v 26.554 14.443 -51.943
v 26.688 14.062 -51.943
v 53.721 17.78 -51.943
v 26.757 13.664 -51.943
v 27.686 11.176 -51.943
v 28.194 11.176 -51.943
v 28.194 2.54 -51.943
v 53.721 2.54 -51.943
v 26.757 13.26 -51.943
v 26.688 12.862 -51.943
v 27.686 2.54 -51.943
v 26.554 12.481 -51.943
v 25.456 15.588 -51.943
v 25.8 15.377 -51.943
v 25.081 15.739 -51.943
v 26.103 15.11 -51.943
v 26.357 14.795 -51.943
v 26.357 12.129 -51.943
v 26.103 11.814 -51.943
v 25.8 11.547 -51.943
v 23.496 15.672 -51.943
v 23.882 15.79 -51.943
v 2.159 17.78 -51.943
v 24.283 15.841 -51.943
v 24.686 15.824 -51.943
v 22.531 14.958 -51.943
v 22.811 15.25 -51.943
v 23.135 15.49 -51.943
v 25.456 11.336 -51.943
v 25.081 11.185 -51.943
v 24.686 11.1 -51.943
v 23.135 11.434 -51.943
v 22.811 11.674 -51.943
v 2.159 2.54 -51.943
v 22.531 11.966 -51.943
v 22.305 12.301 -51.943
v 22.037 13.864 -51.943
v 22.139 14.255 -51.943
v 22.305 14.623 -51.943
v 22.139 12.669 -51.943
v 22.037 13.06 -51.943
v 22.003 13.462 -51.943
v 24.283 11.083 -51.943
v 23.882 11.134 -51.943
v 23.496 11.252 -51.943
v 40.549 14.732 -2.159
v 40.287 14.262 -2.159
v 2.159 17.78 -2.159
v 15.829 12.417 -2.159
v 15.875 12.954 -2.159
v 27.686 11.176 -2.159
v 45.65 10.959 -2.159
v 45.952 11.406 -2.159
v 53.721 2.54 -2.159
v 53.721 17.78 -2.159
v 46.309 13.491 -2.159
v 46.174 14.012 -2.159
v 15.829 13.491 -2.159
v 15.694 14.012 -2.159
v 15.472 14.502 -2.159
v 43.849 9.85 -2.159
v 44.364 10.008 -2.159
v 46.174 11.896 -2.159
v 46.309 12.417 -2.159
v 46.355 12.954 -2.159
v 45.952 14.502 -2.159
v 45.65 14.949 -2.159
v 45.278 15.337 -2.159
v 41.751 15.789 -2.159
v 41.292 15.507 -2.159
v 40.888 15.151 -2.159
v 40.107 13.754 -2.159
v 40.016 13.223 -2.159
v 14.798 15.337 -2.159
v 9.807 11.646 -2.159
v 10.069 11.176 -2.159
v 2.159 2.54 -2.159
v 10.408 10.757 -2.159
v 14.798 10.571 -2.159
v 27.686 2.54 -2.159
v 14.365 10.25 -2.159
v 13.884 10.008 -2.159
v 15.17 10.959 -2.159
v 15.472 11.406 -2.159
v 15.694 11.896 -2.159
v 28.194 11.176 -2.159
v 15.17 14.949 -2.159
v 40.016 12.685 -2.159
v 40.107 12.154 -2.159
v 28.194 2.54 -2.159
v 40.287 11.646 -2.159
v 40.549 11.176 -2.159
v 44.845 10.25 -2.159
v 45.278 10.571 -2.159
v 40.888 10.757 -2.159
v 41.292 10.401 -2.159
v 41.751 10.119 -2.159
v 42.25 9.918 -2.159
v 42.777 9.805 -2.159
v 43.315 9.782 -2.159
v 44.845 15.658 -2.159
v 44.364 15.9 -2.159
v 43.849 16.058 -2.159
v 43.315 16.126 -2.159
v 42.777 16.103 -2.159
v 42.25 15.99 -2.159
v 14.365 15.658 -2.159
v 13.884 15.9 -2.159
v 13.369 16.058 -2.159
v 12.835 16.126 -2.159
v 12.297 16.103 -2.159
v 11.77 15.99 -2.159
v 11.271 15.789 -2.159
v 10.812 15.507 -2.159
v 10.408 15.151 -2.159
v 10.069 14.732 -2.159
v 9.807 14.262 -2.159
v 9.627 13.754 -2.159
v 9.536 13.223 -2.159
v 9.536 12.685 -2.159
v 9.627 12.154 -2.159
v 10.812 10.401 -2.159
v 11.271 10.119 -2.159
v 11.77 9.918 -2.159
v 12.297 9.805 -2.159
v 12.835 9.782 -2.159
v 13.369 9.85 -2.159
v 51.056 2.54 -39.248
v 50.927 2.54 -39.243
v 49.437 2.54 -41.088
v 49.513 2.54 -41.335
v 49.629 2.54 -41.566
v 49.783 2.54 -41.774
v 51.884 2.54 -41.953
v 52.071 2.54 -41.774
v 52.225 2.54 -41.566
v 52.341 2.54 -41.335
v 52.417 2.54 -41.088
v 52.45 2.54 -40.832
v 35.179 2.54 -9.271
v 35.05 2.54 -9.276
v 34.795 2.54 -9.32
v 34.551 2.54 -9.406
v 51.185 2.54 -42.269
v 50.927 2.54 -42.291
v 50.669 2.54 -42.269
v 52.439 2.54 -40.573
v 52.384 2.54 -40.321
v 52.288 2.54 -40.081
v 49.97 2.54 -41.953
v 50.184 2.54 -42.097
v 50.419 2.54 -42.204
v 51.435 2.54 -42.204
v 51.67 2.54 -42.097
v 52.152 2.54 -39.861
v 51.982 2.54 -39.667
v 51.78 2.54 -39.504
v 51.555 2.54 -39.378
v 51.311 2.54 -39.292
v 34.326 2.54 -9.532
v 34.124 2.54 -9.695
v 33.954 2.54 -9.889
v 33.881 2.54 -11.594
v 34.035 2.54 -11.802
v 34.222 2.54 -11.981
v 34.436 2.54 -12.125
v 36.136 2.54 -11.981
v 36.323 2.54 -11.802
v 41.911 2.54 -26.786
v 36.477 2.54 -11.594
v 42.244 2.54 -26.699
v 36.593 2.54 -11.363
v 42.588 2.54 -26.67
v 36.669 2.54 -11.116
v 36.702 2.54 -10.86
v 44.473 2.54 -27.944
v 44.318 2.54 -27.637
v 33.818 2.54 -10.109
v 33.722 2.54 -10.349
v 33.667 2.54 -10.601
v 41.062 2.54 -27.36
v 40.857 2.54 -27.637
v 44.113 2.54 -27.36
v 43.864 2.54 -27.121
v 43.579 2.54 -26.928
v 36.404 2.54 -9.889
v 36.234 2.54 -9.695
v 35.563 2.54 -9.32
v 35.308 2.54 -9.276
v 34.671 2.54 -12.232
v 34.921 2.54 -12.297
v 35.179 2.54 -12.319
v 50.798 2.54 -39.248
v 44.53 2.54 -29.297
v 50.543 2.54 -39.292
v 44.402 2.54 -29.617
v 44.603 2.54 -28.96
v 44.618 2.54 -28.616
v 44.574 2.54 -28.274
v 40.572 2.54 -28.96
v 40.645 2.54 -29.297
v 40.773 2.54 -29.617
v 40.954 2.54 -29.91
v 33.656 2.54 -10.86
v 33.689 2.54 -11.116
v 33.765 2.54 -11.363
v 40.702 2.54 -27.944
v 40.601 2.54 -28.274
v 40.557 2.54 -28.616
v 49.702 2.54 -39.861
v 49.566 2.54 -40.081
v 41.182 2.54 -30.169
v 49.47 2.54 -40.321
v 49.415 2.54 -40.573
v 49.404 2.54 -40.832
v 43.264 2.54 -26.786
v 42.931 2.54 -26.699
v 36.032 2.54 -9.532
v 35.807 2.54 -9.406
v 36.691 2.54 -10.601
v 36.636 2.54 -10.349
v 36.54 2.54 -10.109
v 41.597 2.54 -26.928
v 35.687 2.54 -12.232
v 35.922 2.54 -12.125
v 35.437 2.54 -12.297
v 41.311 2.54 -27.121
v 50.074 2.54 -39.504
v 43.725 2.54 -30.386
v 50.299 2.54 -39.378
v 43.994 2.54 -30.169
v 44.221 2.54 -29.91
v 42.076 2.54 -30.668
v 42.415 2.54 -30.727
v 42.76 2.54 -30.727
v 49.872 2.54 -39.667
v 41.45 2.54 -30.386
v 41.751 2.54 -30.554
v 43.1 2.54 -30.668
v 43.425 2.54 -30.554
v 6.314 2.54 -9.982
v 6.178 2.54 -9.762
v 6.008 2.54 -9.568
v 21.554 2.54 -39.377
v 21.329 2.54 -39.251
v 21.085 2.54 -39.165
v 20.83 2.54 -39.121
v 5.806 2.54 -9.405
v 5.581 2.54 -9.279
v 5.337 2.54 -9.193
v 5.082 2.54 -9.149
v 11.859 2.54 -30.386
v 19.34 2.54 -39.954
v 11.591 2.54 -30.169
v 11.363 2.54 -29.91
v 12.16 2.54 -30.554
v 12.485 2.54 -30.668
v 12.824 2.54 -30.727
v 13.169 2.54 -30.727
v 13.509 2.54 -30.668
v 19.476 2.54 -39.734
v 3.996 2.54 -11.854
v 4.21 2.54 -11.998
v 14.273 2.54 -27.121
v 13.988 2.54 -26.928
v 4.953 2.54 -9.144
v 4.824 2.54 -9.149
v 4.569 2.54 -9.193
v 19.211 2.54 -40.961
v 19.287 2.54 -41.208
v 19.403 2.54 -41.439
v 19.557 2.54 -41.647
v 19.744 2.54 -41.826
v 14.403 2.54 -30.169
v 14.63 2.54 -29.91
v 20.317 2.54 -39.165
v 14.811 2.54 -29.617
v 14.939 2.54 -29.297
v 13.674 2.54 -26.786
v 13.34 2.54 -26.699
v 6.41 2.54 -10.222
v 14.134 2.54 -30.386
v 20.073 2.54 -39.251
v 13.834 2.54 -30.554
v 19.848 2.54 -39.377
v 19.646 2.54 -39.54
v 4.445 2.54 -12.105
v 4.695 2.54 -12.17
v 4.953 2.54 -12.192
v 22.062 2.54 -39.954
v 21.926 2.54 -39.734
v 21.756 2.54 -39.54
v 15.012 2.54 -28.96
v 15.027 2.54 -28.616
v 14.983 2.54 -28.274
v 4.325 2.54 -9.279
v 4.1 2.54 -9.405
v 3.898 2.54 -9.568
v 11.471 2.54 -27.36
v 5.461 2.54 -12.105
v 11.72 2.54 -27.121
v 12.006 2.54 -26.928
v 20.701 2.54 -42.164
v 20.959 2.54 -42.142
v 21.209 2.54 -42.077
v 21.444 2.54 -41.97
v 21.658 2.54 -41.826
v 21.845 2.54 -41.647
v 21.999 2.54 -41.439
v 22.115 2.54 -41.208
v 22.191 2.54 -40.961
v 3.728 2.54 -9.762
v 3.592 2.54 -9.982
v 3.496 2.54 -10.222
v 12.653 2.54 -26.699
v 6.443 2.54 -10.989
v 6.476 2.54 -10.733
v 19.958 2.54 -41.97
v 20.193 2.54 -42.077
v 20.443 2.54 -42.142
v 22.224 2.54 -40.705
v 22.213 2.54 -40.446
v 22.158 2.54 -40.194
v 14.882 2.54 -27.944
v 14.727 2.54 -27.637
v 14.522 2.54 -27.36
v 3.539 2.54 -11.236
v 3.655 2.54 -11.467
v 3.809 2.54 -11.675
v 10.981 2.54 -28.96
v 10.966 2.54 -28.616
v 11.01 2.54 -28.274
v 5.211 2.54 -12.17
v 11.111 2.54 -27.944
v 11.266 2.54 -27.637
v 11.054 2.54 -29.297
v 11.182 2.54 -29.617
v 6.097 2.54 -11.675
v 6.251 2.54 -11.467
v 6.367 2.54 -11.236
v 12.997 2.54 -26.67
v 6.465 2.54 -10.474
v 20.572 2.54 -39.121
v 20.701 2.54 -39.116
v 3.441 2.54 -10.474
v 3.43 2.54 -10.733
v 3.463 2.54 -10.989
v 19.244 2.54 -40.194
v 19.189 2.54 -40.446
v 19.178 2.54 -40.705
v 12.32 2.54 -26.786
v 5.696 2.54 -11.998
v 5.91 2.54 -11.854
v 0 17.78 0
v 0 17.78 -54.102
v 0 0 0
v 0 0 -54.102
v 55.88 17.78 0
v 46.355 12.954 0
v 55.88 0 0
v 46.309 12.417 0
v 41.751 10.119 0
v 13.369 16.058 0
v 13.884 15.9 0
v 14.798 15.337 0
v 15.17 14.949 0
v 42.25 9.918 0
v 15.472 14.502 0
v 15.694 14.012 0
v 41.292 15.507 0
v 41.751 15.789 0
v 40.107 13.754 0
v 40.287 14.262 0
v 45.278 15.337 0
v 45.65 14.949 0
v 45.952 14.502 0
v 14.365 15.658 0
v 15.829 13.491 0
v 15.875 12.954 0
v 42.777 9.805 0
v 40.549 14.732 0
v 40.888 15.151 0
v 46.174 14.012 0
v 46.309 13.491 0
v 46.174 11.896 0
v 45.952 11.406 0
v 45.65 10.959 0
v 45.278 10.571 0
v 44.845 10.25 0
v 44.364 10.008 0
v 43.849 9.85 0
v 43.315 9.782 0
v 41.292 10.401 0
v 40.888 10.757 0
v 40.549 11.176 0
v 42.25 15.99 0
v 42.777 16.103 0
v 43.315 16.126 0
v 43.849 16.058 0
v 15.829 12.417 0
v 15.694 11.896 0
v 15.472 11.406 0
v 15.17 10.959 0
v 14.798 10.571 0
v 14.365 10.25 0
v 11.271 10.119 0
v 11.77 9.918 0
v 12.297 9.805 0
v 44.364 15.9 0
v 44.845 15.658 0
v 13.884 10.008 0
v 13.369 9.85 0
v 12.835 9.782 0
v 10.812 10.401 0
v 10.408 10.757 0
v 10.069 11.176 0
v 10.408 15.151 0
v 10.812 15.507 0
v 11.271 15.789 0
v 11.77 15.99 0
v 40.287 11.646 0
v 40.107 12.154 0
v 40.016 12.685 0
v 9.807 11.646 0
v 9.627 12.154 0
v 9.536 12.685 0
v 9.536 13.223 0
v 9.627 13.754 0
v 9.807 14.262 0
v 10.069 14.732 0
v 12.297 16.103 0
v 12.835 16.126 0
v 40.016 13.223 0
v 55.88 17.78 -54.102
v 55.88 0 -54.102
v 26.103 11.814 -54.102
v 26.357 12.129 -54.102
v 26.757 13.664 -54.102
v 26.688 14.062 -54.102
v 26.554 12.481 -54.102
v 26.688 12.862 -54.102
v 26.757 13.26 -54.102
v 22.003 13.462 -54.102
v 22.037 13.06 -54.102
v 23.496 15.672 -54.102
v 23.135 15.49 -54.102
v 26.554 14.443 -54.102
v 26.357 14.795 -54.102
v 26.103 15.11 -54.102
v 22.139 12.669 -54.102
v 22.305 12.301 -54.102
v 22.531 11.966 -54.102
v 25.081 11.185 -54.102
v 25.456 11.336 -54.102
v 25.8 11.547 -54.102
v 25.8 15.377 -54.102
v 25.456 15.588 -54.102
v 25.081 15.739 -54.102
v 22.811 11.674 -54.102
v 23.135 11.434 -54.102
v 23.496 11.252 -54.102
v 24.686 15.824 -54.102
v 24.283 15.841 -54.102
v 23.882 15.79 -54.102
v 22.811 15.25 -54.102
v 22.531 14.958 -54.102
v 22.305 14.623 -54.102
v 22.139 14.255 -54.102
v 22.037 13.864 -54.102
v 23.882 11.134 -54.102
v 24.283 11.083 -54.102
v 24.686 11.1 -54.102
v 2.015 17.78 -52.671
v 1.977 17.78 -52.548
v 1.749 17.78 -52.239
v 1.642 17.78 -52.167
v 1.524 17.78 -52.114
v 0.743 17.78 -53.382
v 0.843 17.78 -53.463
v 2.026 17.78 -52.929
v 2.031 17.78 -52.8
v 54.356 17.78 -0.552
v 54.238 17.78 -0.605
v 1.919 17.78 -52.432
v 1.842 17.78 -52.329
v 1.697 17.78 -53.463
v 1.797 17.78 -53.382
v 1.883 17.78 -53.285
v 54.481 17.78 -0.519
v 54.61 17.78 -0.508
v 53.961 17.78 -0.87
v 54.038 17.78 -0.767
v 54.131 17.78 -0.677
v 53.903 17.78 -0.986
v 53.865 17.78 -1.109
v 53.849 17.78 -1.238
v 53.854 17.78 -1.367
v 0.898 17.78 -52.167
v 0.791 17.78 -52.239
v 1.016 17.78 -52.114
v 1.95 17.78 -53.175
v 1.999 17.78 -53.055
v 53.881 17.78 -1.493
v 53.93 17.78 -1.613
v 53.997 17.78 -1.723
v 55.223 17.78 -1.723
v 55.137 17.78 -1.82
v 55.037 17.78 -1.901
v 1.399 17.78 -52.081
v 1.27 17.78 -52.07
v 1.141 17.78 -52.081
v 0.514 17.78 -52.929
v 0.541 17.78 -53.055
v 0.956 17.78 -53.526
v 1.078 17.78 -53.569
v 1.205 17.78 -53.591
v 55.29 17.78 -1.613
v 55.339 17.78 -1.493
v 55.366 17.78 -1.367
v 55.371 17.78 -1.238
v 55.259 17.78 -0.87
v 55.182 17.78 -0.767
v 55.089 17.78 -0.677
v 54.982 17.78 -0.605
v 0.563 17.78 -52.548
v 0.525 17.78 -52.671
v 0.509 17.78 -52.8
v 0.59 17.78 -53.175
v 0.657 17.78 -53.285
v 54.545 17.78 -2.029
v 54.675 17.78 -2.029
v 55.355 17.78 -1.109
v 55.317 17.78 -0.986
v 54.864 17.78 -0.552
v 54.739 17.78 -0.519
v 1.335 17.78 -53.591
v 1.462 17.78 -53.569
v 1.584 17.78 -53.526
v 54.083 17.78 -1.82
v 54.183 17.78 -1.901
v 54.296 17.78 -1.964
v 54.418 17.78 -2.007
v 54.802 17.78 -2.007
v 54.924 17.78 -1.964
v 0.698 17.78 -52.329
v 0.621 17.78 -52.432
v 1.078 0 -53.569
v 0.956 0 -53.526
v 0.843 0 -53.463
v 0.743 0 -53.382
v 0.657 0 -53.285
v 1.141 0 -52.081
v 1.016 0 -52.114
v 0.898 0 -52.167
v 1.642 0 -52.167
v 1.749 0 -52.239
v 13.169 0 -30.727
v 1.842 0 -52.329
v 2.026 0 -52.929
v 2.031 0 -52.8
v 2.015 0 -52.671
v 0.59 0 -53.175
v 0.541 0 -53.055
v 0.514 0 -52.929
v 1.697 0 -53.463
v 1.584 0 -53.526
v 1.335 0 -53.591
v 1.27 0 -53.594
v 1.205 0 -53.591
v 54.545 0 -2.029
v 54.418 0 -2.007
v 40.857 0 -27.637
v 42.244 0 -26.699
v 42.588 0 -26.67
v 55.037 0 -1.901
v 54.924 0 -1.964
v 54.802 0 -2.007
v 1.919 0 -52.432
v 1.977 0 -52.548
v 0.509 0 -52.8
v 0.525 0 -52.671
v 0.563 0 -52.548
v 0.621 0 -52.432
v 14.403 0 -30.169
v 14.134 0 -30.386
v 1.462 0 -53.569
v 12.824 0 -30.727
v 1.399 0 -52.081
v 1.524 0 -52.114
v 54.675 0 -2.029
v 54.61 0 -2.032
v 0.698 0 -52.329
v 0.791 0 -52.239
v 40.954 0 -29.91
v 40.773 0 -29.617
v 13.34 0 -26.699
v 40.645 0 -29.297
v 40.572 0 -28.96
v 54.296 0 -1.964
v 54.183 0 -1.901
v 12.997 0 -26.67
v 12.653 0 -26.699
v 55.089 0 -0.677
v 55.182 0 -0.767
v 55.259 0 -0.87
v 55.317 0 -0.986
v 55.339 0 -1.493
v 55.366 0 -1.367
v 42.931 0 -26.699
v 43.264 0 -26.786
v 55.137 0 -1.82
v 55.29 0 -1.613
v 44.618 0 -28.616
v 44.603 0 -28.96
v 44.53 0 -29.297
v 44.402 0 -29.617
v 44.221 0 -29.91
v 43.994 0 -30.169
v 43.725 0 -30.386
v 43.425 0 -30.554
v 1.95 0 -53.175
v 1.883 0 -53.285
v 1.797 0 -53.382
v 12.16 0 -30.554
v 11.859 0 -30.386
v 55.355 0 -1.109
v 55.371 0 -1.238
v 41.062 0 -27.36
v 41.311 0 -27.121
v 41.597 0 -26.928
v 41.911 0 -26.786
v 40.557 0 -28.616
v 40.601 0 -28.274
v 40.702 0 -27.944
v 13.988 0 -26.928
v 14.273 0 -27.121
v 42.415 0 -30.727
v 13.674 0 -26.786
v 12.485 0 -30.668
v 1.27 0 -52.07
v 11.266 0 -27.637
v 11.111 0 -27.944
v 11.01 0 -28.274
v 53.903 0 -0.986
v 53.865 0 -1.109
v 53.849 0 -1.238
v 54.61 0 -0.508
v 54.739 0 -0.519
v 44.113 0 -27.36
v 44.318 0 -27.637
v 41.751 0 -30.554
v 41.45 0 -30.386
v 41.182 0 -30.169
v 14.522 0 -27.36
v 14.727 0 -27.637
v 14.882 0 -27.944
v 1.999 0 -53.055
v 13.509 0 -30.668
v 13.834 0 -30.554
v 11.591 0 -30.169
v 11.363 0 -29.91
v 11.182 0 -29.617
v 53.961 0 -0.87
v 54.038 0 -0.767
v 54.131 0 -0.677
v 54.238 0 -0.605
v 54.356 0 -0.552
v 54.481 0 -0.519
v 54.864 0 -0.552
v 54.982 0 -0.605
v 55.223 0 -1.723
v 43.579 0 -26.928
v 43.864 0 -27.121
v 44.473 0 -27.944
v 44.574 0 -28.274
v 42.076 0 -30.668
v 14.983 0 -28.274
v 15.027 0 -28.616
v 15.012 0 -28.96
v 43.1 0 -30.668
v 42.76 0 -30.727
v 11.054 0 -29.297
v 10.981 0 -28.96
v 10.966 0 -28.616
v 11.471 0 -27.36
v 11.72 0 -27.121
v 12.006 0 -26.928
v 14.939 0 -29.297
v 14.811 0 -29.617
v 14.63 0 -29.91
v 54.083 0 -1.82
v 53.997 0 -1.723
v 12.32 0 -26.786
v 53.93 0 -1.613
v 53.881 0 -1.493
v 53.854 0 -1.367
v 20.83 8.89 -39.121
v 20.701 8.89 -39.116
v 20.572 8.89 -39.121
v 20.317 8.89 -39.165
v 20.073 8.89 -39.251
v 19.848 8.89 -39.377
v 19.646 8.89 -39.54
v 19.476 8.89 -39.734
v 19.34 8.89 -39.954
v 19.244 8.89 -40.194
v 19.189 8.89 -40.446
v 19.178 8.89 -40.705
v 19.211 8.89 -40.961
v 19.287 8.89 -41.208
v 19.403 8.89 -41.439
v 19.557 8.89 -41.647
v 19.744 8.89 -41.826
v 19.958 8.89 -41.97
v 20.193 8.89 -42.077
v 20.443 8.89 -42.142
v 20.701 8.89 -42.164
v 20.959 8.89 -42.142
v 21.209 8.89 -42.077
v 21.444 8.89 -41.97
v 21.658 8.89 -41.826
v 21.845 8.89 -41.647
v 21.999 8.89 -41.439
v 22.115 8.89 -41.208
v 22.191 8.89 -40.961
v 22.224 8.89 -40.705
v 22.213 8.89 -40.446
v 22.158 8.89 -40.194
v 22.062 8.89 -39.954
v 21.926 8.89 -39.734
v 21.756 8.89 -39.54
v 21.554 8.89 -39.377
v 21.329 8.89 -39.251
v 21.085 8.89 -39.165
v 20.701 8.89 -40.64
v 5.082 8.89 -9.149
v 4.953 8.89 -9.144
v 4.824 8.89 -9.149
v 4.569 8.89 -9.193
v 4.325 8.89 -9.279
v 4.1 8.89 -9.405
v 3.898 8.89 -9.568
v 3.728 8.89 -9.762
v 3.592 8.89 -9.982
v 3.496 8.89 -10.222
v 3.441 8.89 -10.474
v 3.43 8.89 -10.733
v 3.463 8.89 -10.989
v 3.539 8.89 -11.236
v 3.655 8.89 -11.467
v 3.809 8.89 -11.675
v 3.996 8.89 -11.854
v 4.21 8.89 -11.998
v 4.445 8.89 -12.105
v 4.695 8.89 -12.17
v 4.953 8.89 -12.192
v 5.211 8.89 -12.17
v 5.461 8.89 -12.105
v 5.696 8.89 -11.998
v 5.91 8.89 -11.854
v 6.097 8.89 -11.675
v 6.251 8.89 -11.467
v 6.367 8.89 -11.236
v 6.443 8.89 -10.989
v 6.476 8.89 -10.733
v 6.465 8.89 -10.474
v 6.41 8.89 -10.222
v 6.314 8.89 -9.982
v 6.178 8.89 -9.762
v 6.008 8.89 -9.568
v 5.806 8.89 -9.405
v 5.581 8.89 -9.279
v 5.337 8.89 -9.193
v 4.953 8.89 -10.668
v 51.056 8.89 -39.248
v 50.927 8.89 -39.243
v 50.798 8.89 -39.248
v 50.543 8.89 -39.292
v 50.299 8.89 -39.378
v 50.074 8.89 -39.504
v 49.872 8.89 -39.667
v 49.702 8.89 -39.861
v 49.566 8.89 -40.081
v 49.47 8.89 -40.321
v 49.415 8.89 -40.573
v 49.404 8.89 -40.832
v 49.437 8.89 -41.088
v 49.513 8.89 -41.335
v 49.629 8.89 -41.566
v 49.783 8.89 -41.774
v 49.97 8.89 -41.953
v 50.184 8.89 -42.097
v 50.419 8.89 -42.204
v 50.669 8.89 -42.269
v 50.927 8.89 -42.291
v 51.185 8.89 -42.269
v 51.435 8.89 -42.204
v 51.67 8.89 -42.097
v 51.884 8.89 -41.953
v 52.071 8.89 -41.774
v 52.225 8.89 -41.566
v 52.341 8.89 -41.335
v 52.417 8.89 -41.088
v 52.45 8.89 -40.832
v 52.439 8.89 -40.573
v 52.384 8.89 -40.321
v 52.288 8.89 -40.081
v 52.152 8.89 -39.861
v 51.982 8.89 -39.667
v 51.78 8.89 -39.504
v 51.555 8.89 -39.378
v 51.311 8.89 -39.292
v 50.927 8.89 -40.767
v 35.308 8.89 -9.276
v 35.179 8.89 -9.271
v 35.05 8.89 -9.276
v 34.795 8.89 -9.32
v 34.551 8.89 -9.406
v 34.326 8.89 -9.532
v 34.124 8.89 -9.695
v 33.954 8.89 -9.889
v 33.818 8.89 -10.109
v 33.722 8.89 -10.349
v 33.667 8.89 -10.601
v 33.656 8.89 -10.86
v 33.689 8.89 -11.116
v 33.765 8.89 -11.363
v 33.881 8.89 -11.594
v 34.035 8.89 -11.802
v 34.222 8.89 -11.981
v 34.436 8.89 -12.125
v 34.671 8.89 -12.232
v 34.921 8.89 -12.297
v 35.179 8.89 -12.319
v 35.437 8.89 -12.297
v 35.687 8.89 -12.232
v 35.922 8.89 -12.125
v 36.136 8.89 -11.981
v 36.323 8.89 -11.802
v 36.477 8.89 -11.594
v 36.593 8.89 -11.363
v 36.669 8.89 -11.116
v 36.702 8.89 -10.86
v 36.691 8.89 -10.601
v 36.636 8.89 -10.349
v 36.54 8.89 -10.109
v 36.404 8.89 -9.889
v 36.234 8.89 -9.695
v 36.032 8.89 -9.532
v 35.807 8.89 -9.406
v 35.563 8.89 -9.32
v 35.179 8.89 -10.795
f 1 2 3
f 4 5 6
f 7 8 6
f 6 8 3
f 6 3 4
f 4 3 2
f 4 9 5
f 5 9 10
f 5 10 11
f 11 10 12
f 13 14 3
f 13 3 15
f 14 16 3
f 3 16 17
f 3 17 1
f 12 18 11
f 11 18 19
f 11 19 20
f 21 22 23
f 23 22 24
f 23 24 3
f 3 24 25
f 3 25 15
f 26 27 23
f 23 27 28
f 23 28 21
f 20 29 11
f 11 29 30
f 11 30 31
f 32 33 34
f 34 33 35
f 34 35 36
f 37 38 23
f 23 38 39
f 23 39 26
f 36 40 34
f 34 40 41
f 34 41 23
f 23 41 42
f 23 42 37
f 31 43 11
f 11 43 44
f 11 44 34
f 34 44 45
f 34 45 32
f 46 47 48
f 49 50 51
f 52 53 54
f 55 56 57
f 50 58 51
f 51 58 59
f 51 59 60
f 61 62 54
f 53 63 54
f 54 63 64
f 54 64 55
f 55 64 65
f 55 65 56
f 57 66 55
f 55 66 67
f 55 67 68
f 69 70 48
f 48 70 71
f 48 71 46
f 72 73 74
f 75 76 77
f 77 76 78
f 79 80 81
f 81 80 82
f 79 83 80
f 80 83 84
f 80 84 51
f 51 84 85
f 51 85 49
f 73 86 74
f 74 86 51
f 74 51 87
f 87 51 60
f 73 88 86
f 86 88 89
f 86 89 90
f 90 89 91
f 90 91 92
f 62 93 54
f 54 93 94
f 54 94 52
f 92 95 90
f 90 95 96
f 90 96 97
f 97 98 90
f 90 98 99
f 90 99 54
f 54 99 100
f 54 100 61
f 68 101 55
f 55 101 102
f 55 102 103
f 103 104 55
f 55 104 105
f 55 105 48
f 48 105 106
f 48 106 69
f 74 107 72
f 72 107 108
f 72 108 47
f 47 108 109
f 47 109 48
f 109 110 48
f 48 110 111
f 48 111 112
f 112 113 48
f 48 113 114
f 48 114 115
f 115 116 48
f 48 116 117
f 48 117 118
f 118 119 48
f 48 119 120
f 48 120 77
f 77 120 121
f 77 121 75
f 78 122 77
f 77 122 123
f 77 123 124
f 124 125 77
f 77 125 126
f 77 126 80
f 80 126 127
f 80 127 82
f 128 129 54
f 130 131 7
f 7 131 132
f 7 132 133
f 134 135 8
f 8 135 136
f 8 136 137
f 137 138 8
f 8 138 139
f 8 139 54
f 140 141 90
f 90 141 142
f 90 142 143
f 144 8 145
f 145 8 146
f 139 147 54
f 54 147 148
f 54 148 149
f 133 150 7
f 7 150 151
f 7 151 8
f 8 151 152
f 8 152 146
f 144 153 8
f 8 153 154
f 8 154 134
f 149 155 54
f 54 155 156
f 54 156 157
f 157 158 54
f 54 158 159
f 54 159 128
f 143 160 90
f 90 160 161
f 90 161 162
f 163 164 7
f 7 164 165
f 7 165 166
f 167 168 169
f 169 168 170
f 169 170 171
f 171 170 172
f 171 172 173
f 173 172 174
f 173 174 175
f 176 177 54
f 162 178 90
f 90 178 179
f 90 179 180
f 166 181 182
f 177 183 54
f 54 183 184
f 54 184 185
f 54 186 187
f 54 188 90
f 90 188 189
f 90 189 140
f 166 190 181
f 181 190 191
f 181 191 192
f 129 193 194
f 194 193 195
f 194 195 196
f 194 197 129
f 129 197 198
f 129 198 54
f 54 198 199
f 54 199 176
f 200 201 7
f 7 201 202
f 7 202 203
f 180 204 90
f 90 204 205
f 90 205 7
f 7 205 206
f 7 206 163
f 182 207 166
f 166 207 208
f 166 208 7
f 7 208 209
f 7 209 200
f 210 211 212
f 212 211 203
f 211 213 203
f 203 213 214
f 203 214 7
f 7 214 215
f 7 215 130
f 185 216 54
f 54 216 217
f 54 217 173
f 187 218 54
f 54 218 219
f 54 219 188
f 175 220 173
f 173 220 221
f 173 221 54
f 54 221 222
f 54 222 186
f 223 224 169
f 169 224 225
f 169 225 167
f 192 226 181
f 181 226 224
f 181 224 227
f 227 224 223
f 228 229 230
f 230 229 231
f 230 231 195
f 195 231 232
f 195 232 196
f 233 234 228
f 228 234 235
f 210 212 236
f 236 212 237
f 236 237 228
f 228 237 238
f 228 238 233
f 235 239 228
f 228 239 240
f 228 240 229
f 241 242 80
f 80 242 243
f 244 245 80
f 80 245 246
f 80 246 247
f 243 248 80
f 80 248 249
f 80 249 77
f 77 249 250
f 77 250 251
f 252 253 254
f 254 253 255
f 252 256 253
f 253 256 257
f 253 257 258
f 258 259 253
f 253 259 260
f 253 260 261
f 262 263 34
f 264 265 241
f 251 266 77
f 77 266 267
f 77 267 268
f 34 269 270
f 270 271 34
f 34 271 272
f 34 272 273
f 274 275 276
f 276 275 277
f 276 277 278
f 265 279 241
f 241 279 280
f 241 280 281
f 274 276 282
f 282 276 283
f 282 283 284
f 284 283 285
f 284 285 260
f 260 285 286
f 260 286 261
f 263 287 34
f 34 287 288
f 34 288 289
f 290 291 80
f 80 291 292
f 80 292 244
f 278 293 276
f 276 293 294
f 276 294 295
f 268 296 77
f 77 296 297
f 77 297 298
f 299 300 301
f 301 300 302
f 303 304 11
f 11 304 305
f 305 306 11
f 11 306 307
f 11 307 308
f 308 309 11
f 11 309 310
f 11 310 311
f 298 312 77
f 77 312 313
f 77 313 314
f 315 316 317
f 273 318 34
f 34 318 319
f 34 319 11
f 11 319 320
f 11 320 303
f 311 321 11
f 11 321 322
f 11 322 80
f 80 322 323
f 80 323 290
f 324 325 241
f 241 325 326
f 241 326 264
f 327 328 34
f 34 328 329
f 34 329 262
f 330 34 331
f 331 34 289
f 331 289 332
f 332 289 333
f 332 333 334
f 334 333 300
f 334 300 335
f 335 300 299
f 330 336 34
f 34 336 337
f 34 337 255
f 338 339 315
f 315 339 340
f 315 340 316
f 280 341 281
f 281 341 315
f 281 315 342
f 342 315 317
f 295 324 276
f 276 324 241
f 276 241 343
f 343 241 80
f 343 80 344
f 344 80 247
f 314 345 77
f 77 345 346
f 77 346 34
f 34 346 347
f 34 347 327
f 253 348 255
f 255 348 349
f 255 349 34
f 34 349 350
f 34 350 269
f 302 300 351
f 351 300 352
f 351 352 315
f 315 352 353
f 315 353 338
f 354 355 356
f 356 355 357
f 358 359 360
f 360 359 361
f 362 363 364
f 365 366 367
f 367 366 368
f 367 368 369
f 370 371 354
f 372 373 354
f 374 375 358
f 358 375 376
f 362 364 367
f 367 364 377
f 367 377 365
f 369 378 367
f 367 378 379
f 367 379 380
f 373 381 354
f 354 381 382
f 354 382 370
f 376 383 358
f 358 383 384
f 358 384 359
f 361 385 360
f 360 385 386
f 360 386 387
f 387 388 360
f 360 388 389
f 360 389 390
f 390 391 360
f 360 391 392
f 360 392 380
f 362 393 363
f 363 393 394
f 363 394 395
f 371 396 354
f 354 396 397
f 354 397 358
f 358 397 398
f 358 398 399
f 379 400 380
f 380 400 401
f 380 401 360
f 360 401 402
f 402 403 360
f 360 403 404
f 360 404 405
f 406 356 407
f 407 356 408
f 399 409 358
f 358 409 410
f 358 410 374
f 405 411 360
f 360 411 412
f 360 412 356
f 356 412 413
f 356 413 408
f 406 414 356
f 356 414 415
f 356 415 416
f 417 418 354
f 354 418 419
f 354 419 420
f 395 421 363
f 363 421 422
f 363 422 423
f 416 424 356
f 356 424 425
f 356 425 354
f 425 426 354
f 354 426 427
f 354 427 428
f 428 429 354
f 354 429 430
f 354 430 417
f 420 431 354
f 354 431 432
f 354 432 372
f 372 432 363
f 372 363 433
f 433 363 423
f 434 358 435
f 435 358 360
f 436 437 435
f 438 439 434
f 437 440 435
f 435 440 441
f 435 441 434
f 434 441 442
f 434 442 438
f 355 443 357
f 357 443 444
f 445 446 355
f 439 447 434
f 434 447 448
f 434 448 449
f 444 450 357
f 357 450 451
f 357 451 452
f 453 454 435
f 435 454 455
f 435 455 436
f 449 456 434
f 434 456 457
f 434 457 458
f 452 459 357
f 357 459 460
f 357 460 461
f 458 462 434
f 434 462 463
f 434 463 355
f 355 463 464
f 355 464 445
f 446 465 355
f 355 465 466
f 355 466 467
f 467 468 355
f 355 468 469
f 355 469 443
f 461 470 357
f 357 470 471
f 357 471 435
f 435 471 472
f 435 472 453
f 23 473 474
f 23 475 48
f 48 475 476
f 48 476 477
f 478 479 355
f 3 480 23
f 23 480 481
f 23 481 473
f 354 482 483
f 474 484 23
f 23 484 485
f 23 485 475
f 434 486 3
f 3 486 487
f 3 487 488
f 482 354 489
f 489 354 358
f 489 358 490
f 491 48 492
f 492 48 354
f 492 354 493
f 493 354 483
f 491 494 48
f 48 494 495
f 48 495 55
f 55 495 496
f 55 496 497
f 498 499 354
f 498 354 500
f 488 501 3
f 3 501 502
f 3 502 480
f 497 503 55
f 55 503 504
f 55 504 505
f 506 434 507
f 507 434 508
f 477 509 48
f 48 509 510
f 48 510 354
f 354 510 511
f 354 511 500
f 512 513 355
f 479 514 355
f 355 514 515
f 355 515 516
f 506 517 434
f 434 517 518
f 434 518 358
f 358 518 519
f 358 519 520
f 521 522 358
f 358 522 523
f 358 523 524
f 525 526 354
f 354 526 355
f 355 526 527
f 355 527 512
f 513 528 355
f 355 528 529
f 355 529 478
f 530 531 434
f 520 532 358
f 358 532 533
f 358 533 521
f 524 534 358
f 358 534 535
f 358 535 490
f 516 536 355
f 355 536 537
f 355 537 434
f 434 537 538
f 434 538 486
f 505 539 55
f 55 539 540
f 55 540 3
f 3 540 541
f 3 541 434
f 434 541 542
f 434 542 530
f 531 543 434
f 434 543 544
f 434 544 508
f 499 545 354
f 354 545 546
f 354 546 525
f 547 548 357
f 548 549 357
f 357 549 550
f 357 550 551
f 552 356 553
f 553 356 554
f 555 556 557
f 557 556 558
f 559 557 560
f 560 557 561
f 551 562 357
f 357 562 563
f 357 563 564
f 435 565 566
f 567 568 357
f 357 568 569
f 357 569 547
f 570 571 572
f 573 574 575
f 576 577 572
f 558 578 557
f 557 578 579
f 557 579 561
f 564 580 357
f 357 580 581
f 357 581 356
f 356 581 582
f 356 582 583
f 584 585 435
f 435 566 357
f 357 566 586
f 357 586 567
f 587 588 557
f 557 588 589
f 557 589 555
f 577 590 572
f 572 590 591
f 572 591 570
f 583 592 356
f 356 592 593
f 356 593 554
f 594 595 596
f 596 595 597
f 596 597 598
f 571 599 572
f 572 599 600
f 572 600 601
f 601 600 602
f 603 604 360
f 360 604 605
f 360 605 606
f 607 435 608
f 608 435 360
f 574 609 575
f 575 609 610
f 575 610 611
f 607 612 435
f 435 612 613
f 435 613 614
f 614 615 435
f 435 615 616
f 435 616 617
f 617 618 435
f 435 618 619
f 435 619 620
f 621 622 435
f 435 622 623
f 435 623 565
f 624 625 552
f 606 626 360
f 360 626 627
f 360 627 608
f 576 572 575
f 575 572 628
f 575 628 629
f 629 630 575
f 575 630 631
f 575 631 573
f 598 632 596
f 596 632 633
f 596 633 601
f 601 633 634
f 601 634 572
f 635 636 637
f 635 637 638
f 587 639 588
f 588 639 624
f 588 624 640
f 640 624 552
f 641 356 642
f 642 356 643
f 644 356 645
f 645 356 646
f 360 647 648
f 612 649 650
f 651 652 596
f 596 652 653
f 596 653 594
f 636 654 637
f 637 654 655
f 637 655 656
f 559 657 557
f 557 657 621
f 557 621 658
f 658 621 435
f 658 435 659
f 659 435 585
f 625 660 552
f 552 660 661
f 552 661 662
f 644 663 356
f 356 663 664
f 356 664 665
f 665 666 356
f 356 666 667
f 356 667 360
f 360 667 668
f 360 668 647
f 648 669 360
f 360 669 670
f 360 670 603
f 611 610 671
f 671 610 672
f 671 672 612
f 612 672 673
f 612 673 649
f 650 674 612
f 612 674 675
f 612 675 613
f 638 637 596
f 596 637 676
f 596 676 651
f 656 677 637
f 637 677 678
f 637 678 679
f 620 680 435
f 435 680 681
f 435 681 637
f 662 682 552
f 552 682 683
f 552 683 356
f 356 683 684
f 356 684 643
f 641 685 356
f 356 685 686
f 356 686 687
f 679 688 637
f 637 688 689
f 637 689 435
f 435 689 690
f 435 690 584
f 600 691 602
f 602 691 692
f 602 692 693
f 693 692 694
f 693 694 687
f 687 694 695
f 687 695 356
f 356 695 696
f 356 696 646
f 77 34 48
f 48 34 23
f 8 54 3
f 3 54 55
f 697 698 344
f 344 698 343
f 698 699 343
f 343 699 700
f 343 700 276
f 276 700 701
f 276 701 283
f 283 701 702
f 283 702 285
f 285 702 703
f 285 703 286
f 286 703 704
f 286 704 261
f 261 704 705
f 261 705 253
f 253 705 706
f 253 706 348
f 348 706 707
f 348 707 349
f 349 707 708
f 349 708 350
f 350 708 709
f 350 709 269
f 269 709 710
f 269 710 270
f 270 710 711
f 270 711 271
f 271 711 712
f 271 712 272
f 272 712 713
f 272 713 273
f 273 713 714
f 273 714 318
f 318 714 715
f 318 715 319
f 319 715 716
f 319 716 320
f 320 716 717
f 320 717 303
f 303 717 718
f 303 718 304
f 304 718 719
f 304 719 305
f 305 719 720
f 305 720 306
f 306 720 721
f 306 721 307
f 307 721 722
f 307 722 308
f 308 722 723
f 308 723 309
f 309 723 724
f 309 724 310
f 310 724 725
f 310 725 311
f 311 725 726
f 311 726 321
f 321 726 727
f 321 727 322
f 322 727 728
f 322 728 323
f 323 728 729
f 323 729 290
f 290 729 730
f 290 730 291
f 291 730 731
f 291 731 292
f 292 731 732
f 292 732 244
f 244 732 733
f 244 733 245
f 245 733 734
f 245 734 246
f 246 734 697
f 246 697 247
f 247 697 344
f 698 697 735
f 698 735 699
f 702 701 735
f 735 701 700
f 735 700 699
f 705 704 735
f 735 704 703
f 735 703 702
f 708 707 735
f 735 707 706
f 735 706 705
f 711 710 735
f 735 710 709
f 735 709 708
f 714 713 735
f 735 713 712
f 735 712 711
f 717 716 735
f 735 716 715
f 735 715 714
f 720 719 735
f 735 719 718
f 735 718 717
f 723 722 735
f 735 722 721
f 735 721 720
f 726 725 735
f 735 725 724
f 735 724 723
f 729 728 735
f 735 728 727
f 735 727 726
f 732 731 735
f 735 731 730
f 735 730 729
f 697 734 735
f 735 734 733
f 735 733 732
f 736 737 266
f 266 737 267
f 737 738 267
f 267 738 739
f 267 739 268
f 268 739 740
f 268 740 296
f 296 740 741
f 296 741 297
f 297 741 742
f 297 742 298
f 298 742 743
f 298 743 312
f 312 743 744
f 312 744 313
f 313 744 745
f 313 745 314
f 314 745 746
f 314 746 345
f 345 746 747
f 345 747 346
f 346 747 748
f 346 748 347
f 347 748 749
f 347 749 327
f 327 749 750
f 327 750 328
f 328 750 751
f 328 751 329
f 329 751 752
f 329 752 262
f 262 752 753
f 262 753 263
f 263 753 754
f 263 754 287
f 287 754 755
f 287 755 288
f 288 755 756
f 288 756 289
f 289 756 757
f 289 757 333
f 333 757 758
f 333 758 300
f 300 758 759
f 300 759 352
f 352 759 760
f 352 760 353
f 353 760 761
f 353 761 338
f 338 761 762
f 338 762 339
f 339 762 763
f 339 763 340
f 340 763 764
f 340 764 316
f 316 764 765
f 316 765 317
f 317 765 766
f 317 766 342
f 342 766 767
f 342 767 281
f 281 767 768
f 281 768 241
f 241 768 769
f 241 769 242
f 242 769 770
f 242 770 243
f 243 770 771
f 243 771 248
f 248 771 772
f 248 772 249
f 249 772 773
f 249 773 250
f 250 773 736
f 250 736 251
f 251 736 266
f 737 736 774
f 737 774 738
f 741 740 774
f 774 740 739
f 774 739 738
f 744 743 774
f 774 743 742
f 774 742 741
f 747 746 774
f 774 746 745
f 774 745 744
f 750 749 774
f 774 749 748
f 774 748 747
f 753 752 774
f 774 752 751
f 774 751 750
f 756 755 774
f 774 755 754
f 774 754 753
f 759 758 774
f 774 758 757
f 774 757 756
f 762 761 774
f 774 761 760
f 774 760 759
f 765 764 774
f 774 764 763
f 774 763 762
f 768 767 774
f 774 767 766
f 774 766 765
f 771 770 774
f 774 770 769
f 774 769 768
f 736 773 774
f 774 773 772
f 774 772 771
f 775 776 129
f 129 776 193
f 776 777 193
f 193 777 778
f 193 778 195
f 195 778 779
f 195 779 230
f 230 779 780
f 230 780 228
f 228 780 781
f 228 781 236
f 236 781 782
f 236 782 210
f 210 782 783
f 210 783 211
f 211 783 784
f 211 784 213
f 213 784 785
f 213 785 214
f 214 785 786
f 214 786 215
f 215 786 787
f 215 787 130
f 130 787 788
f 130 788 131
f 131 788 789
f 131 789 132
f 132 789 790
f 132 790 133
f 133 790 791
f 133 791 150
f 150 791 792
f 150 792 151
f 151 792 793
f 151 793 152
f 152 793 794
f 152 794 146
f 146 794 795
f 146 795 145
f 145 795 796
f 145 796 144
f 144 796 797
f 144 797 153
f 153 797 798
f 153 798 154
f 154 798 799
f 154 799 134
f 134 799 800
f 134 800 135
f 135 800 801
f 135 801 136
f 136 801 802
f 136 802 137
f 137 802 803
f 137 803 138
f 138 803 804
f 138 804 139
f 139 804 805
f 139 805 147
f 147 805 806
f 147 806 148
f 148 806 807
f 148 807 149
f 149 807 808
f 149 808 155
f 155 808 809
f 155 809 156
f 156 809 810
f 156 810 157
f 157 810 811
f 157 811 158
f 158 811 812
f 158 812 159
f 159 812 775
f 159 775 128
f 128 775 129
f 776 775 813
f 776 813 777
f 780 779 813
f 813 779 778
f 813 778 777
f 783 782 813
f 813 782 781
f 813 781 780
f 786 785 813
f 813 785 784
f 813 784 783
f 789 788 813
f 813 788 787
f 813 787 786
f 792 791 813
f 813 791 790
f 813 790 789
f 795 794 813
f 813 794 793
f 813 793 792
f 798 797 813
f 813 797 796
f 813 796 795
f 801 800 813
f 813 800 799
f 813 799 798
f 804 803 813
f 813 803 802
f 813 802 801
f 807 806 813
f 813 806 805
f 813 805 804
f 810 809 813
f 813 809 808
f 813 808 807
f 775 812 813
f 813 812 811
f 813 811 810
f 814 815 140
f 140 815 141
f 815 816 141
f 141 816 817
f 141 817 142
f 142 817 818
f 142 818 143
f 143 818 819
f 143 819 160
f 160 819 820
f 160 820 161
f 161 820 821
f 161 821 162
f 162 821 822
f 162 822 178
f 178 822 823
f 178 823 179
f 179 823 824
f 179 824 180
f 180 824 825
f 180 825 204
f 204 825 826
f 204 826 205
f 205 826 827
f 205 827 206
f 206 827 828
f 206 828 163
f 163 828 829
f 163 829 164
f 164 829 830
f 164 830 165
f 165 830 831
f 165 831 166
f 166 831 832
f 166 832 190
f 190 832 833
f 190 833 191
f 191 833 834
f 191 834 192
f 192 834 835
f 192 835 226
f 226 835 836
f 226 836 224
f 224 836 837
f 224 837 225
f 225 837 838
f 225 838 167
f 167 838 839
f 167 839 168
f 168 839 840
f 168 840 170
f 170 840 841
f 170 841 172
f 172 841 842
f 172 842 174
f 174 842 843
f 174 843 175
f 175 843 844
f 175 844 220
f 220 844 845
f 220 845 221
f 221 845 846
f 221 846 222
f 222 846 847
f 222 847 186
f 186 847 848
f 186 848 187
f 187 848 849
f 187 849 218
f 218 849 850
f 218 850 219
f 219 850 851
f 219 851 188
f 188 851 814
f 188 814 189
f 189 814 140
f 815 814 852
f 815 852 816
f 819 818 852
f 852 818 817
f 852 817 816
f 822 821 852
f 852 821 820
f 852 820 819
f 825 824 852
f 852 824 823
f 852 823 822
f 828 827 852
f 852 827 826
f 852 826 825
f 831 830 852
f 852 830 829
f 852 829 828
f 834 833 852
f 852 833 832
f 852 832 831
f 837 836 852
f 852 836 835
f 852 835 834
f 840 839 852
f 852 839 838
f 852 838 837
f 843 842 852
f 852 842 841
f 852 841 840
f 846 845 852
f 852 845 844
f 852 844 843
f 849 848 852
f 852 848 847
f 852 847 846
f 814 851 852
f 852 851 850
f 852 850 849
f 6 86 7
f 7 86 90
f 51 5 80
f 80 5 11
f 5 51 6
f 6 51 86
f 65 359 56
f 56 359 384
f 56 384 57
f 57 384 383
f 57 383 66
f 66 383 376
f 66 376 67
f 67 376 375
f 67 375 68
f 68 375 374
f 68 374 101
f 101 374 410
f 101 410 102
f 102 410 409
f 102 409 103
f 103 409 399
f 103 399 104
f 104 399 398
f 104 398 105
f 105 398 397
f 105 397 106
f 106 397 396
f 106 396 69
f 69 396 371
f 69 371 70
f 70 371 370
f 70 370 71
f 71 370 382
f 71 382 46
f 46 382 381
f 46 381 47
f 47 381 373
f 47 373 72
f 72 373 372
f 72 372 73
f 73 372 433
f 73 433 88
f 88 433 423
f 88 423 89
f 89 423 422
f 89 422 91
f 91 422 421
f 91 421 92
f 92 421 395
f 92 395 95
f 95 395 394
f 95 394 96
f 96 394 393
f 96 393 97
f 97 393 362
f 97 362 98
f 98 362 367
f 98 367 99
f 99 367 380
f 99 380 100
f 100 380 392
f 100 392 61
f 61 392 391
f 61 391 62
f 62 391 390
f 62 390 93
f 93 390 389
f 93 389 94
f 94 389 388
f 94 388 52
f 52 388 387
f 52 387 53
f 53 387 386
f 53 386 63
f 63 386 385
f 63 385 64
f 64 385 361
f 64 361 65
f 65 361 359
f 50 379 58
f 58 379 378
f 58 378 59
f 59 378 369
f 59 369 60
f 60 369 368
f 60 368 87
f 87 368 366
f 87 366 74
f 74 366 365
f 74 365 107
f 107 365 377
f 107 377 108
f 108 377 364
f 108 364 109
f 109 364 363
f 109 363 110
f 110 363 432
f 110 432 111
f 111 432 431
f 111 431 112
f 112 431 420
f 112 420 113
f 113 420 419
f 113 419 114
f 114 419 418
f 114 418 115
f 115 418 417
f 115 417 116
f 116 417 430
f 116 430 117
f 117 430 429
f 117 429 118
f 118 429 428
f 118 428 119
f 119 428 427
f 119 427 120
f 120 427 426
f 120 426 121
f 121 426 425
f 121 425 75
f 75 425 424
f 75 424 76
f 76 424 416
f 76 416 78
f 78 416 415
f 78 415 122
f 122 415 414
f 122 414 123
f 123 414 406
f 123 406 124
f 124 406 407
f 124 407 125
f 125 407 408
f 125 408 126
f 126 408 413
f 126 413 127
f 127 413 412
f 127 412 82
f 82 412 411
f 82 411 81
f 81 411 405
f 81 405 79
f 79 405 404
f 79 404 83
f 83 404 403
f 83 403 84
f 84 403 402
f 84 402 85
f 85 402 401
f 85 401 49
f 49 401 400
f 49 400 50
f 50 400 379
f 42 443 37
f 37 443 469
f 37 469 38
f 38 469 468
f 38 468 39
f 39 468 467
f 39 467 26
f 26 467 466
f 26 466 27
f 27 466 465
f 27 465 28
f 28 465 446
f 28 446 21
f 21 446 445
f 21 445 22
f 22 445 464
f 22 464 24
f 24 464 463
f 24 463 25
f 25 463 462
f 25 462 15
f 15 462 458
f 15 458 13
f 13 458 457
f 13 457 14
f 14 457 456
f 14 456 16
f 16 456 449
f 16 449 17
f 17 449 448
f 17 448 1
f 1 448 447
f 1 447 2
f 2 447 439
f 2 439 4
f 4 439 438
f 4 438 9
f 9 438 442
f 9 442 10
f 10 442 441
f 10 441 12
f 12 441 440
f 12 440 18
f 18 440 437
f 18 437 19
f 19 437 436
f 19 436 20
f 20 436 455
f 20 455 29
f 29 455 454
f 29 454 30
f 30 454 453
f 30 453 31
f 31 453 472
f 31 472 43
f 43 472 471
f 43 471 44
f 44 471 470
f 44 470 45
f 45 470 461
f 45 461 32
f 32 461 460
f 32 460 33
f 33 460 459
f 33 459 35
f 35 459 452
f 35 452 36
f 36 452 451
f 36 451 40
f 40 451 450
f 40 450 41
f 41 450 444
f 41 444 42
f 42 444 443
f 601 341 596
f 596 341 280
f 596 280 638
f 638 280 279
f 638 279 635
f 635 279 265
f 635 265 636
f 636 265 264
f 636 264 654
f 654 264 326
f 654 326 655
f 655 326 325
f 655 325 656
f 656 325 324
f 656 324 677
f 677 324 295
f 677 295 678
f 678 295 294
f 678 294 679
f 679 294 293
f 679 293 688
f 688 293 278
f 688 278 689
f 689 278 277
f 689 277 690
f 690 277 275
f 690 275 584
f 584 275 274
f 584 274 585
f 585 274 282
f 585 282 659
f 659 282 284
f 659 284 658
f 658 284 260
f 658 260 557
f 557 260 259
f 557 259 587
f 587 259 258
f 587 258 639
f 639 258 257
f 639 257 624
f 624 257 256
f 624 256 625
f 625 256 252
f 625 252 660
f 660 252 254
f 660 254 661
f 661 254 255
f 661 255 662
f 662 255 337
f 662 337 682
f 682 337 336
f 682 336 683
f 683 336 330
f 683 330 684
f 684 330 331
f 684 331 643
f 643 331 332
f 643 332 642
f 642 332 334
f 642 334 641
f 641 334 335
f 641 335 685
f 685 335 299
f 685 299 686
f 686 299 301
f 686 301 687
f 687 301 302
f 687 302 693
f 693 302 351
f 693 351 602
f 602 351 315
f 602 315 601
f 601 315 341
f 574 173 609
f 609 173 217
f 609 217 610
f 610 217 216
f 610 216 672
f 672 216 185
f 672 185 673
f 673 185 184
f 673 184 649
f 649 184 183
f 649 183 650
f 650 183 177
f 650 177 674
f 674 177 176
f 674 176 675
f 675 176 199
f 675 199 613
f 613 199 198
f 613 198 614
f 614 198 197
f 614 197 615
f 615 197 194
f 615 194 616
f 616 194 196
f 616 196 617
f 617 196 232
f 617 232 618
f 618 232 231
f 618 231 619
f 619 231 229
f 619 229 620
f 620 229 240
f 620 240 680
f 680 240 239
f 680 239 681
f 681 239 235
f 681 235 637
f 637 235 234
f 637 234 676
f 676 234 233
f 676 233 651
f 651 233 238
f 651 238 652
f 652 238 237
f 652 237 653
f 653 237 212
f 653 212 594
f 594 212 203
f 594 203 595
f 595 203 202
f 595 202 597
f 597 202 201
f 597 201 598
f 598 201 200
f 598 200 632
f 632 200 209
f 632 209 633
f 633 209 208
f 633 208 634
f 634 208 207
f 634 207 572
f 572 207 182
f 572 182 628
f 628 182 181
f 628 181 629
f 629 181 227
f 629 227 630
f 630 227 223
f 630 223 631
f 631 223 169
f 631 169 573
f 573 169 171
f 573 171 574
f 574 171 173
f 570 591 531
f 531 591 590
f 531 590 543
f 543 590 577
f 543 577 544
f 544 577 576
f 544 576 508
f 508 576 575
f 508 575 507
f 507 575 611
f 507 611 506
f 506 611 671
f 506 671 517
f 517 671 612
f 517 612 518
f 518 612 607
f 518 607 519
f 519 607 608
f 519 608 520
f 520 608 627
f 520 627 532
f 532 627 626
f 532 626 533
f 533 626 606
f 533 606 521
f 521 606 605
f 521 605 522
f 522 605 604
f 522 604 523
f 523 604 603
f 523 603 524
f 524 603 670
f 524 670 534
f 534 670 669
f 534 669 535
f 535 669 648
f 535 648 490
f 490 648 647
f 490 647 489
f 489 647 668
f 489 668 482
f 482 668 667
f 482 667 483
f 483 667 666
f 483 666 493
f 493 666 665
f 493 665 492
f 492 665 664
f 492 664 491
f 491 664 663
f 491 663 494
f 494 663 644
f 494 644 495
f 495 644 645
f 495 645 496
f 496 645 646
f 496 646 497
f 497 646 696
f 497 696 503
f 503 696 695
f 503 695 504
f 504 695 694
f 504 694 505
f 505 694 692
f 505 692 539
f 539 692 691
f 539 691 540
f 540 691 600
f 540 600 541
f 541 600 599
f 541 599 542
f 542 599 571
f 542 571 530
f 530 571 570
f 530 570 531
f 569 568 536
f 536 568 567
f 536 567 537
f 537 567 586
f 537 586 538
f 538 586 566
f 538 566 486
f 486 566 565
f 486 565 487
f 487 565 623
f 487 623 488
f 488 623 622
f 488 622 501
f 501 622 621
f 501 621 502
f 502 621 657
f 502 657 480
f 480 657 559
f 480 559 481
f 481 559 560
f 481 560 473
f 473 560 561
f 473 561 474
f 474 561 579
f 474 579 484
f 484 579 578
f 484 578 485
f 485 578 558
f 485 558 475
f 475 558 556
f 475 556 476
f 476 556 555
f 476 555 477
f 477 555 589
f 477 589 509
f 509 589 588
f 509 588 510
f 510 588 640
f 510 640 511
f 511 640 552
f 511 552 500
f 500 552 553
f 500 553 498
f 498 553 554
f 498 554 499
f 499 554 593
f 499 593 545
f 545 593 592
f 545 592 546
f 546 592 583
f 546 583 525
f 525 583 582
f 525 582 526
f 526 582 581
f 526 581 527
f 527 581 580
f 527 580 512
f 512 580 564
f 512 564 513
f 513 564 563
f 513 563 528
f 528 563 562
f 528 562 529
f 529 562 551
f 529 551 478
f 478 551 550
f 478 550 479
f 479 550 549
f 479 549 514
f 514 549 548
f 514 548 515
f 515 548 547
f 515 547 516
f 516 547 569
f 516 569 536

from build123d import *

# Parameters (mm, degrees)
SKETCH1_W           = 55.88
SKETCH1_H           = 54.102
BOSS_EXTRUDE1_DEPTH = 17.78
SKETCH3_W           = 51.562
SKETCH3_H           = 49.784
CUT_EXTRUDE1_DEPTH  = 15.24
SKETCH4_R           = 1.524
BOSS_EXTRUDE2_DEPTH = 6.35
SKETCH6_W           = 0.508
SKETCH6_H           = 49.784
BOSS_EXTRUDE3_DEPTH = 8.636
SKETCH7_R           = 3.175
CUT_EXTRUDE3_DEPTH  = 2.54
SKETCH8_R           = 2.38125
CUT_EXTRUDE5_DEPTH  = 2.54
SKETCH9_R           = 2.032
CUT_EXTRUDE6_DEPTH  = 2.54
SKETCH10_R          = 2.032
CUT_EXTRUDE7_DEPTH  = 2.54
SKETCH11_R          = 0.762
CUT_EXTRUDE8_DEPTH  = 49.276


with BuildPart() as part:
    # Sketch1 → Boss-Extrude1 (new body)
    with BuildSketch(Plane(origin=(0, 0, 0), x_dir=(1, 0, 0), z_dir=(0, 1, 0))):
        with Locations((27.94, 27.051)):
            Rectangle(SKETCH1_W, SKETCH1_H)
    extrude(amount=BOSS_EXTRUDE1_DEPTH)

    # Sketch3 → Cut-Extrude1 (cut)
    with BuildSketch(Plane(origin=(0, 17.78, 0), x_dir=(1, 0, 0), z_dir=(0, 1, 0))):
        with Locations((27.94, 27.051)):
            Rectangle(SKETCH3_W, SKETCH3_H)
    extrude(amount=-CUT_EXTRUDE1_DEPTH, mode=Mode.SUBTRACT)

    # Sketch4 → Boss-Extrude2 (add)
    with BuildSketch(Plane(origin=(0, 2.54, 0), x_dir=(1, 0, 0), z_dir=(0, 1, 0))):
        with Locations(Location((20.701, 40.64, 0), (0, 0, 270))):
            Circle(SKETCH4_R)
        with Locations(Location((4.953, 10.668, 0), (0, 0, 270))):
            Circle(SKETCH4_R)
        with Locations(Location((50.927, 40.767, 0), (0, 0, 270))):
            Circle(SKETCH4_R)
        with Locations(Location((35.179, 10.795, 0), (0, 0, 270))):
            Circle(SKETCH4_R)
    extrude(amount=BOSS_EXTRUDE2_DEPTH)

    # Sketch6 → Boss-Extrude3 (add)
    with BuildSketch(Plane(origin=(0, 2.54, 0), x_dir=(1, 0, 0), z_dir=(0, 1, 0))):
        with Locations((27.94, 27.051)):
            Rectangle(SKETCH6_W, SKETCH6_H)
    extrude(amount=BOSS_EXTRUDE3_DEPTH)

    # Sketch7 → Cut-Extrude3 (cut)
    with BuildSketch(Plane.XY):
        with Locations((12.7, 12.954)):
            Circle(SKETCH7_R)
        with Locations((43.18, 12.954)):
            Circle(SKETCH7_R)
    extrude(amount=-CUT_EXTRUDE3_DEPTH, mode=Mode.SUBTRACT)

    # Sketch8 → Cut-Extrude5 (cut)
    with BuildSketch(Plane(origin=(0, 0, -54.102), x_dir=(-1, 0, 0), z_dir=(0, 0, -1))):
        with Locations((-24.384, 13.462)):
            Circle(SKETCH8_R)
    extrude(amount=-CUT_EXTRUDE5_DEPTH, mode=Mode.SUBTRACT)

    # Sketch9 → Cut-Extrude6 (cut)
    with BuildSketch(Plane(origin=(0, 2.54, 0), x_dir=(1, 0, 0), z_dir=(0, 1, 0))):
        with Locations(Location((12.996559759, 28.702, 0), (0, 0, 270))):
            Circle(SKETCH9_R)
    extrude(amount=-CUT_EXTRUDE6_DEPTH, mode=Mode.SUBTRACT)

    # Sketch10 → Cut-Extrude7 (cut)
    with BuildSketch(Plane(origin=(0, 2.54, 0), x_dir=(1, 0, 0), z_dir=(0, 1, 0))):
        with Locations(Location((42.587559759, 28.702, 0), (0, 0, 270))):
            Circle(SKETCH10_R)
    extrude(amount=-CUT_EXTRUDE7_DEPTH, mode=Mode.SUBTRACT)

    # Sketch11 → Cut-Extrude8 (cut)
    with BuildSketch(Plane(origin=(0, 17.78, 0), x_dir=(1, 0, 0), z_dir=(0, 1, 0))):
        with Locations(Location((1.27, 52.832, 0), (0, 0, 270))):
            Circle(SKETCH11_R)
        with Locations(Location((54.61, 1.27, 0), (0, 0, 270))):
            Circle(SKETCH11_R)
    extrude(amount=-CUT_EXTRUDE8_DEPTH, mode=Mode.SUBTRACT)


solid = part.part
